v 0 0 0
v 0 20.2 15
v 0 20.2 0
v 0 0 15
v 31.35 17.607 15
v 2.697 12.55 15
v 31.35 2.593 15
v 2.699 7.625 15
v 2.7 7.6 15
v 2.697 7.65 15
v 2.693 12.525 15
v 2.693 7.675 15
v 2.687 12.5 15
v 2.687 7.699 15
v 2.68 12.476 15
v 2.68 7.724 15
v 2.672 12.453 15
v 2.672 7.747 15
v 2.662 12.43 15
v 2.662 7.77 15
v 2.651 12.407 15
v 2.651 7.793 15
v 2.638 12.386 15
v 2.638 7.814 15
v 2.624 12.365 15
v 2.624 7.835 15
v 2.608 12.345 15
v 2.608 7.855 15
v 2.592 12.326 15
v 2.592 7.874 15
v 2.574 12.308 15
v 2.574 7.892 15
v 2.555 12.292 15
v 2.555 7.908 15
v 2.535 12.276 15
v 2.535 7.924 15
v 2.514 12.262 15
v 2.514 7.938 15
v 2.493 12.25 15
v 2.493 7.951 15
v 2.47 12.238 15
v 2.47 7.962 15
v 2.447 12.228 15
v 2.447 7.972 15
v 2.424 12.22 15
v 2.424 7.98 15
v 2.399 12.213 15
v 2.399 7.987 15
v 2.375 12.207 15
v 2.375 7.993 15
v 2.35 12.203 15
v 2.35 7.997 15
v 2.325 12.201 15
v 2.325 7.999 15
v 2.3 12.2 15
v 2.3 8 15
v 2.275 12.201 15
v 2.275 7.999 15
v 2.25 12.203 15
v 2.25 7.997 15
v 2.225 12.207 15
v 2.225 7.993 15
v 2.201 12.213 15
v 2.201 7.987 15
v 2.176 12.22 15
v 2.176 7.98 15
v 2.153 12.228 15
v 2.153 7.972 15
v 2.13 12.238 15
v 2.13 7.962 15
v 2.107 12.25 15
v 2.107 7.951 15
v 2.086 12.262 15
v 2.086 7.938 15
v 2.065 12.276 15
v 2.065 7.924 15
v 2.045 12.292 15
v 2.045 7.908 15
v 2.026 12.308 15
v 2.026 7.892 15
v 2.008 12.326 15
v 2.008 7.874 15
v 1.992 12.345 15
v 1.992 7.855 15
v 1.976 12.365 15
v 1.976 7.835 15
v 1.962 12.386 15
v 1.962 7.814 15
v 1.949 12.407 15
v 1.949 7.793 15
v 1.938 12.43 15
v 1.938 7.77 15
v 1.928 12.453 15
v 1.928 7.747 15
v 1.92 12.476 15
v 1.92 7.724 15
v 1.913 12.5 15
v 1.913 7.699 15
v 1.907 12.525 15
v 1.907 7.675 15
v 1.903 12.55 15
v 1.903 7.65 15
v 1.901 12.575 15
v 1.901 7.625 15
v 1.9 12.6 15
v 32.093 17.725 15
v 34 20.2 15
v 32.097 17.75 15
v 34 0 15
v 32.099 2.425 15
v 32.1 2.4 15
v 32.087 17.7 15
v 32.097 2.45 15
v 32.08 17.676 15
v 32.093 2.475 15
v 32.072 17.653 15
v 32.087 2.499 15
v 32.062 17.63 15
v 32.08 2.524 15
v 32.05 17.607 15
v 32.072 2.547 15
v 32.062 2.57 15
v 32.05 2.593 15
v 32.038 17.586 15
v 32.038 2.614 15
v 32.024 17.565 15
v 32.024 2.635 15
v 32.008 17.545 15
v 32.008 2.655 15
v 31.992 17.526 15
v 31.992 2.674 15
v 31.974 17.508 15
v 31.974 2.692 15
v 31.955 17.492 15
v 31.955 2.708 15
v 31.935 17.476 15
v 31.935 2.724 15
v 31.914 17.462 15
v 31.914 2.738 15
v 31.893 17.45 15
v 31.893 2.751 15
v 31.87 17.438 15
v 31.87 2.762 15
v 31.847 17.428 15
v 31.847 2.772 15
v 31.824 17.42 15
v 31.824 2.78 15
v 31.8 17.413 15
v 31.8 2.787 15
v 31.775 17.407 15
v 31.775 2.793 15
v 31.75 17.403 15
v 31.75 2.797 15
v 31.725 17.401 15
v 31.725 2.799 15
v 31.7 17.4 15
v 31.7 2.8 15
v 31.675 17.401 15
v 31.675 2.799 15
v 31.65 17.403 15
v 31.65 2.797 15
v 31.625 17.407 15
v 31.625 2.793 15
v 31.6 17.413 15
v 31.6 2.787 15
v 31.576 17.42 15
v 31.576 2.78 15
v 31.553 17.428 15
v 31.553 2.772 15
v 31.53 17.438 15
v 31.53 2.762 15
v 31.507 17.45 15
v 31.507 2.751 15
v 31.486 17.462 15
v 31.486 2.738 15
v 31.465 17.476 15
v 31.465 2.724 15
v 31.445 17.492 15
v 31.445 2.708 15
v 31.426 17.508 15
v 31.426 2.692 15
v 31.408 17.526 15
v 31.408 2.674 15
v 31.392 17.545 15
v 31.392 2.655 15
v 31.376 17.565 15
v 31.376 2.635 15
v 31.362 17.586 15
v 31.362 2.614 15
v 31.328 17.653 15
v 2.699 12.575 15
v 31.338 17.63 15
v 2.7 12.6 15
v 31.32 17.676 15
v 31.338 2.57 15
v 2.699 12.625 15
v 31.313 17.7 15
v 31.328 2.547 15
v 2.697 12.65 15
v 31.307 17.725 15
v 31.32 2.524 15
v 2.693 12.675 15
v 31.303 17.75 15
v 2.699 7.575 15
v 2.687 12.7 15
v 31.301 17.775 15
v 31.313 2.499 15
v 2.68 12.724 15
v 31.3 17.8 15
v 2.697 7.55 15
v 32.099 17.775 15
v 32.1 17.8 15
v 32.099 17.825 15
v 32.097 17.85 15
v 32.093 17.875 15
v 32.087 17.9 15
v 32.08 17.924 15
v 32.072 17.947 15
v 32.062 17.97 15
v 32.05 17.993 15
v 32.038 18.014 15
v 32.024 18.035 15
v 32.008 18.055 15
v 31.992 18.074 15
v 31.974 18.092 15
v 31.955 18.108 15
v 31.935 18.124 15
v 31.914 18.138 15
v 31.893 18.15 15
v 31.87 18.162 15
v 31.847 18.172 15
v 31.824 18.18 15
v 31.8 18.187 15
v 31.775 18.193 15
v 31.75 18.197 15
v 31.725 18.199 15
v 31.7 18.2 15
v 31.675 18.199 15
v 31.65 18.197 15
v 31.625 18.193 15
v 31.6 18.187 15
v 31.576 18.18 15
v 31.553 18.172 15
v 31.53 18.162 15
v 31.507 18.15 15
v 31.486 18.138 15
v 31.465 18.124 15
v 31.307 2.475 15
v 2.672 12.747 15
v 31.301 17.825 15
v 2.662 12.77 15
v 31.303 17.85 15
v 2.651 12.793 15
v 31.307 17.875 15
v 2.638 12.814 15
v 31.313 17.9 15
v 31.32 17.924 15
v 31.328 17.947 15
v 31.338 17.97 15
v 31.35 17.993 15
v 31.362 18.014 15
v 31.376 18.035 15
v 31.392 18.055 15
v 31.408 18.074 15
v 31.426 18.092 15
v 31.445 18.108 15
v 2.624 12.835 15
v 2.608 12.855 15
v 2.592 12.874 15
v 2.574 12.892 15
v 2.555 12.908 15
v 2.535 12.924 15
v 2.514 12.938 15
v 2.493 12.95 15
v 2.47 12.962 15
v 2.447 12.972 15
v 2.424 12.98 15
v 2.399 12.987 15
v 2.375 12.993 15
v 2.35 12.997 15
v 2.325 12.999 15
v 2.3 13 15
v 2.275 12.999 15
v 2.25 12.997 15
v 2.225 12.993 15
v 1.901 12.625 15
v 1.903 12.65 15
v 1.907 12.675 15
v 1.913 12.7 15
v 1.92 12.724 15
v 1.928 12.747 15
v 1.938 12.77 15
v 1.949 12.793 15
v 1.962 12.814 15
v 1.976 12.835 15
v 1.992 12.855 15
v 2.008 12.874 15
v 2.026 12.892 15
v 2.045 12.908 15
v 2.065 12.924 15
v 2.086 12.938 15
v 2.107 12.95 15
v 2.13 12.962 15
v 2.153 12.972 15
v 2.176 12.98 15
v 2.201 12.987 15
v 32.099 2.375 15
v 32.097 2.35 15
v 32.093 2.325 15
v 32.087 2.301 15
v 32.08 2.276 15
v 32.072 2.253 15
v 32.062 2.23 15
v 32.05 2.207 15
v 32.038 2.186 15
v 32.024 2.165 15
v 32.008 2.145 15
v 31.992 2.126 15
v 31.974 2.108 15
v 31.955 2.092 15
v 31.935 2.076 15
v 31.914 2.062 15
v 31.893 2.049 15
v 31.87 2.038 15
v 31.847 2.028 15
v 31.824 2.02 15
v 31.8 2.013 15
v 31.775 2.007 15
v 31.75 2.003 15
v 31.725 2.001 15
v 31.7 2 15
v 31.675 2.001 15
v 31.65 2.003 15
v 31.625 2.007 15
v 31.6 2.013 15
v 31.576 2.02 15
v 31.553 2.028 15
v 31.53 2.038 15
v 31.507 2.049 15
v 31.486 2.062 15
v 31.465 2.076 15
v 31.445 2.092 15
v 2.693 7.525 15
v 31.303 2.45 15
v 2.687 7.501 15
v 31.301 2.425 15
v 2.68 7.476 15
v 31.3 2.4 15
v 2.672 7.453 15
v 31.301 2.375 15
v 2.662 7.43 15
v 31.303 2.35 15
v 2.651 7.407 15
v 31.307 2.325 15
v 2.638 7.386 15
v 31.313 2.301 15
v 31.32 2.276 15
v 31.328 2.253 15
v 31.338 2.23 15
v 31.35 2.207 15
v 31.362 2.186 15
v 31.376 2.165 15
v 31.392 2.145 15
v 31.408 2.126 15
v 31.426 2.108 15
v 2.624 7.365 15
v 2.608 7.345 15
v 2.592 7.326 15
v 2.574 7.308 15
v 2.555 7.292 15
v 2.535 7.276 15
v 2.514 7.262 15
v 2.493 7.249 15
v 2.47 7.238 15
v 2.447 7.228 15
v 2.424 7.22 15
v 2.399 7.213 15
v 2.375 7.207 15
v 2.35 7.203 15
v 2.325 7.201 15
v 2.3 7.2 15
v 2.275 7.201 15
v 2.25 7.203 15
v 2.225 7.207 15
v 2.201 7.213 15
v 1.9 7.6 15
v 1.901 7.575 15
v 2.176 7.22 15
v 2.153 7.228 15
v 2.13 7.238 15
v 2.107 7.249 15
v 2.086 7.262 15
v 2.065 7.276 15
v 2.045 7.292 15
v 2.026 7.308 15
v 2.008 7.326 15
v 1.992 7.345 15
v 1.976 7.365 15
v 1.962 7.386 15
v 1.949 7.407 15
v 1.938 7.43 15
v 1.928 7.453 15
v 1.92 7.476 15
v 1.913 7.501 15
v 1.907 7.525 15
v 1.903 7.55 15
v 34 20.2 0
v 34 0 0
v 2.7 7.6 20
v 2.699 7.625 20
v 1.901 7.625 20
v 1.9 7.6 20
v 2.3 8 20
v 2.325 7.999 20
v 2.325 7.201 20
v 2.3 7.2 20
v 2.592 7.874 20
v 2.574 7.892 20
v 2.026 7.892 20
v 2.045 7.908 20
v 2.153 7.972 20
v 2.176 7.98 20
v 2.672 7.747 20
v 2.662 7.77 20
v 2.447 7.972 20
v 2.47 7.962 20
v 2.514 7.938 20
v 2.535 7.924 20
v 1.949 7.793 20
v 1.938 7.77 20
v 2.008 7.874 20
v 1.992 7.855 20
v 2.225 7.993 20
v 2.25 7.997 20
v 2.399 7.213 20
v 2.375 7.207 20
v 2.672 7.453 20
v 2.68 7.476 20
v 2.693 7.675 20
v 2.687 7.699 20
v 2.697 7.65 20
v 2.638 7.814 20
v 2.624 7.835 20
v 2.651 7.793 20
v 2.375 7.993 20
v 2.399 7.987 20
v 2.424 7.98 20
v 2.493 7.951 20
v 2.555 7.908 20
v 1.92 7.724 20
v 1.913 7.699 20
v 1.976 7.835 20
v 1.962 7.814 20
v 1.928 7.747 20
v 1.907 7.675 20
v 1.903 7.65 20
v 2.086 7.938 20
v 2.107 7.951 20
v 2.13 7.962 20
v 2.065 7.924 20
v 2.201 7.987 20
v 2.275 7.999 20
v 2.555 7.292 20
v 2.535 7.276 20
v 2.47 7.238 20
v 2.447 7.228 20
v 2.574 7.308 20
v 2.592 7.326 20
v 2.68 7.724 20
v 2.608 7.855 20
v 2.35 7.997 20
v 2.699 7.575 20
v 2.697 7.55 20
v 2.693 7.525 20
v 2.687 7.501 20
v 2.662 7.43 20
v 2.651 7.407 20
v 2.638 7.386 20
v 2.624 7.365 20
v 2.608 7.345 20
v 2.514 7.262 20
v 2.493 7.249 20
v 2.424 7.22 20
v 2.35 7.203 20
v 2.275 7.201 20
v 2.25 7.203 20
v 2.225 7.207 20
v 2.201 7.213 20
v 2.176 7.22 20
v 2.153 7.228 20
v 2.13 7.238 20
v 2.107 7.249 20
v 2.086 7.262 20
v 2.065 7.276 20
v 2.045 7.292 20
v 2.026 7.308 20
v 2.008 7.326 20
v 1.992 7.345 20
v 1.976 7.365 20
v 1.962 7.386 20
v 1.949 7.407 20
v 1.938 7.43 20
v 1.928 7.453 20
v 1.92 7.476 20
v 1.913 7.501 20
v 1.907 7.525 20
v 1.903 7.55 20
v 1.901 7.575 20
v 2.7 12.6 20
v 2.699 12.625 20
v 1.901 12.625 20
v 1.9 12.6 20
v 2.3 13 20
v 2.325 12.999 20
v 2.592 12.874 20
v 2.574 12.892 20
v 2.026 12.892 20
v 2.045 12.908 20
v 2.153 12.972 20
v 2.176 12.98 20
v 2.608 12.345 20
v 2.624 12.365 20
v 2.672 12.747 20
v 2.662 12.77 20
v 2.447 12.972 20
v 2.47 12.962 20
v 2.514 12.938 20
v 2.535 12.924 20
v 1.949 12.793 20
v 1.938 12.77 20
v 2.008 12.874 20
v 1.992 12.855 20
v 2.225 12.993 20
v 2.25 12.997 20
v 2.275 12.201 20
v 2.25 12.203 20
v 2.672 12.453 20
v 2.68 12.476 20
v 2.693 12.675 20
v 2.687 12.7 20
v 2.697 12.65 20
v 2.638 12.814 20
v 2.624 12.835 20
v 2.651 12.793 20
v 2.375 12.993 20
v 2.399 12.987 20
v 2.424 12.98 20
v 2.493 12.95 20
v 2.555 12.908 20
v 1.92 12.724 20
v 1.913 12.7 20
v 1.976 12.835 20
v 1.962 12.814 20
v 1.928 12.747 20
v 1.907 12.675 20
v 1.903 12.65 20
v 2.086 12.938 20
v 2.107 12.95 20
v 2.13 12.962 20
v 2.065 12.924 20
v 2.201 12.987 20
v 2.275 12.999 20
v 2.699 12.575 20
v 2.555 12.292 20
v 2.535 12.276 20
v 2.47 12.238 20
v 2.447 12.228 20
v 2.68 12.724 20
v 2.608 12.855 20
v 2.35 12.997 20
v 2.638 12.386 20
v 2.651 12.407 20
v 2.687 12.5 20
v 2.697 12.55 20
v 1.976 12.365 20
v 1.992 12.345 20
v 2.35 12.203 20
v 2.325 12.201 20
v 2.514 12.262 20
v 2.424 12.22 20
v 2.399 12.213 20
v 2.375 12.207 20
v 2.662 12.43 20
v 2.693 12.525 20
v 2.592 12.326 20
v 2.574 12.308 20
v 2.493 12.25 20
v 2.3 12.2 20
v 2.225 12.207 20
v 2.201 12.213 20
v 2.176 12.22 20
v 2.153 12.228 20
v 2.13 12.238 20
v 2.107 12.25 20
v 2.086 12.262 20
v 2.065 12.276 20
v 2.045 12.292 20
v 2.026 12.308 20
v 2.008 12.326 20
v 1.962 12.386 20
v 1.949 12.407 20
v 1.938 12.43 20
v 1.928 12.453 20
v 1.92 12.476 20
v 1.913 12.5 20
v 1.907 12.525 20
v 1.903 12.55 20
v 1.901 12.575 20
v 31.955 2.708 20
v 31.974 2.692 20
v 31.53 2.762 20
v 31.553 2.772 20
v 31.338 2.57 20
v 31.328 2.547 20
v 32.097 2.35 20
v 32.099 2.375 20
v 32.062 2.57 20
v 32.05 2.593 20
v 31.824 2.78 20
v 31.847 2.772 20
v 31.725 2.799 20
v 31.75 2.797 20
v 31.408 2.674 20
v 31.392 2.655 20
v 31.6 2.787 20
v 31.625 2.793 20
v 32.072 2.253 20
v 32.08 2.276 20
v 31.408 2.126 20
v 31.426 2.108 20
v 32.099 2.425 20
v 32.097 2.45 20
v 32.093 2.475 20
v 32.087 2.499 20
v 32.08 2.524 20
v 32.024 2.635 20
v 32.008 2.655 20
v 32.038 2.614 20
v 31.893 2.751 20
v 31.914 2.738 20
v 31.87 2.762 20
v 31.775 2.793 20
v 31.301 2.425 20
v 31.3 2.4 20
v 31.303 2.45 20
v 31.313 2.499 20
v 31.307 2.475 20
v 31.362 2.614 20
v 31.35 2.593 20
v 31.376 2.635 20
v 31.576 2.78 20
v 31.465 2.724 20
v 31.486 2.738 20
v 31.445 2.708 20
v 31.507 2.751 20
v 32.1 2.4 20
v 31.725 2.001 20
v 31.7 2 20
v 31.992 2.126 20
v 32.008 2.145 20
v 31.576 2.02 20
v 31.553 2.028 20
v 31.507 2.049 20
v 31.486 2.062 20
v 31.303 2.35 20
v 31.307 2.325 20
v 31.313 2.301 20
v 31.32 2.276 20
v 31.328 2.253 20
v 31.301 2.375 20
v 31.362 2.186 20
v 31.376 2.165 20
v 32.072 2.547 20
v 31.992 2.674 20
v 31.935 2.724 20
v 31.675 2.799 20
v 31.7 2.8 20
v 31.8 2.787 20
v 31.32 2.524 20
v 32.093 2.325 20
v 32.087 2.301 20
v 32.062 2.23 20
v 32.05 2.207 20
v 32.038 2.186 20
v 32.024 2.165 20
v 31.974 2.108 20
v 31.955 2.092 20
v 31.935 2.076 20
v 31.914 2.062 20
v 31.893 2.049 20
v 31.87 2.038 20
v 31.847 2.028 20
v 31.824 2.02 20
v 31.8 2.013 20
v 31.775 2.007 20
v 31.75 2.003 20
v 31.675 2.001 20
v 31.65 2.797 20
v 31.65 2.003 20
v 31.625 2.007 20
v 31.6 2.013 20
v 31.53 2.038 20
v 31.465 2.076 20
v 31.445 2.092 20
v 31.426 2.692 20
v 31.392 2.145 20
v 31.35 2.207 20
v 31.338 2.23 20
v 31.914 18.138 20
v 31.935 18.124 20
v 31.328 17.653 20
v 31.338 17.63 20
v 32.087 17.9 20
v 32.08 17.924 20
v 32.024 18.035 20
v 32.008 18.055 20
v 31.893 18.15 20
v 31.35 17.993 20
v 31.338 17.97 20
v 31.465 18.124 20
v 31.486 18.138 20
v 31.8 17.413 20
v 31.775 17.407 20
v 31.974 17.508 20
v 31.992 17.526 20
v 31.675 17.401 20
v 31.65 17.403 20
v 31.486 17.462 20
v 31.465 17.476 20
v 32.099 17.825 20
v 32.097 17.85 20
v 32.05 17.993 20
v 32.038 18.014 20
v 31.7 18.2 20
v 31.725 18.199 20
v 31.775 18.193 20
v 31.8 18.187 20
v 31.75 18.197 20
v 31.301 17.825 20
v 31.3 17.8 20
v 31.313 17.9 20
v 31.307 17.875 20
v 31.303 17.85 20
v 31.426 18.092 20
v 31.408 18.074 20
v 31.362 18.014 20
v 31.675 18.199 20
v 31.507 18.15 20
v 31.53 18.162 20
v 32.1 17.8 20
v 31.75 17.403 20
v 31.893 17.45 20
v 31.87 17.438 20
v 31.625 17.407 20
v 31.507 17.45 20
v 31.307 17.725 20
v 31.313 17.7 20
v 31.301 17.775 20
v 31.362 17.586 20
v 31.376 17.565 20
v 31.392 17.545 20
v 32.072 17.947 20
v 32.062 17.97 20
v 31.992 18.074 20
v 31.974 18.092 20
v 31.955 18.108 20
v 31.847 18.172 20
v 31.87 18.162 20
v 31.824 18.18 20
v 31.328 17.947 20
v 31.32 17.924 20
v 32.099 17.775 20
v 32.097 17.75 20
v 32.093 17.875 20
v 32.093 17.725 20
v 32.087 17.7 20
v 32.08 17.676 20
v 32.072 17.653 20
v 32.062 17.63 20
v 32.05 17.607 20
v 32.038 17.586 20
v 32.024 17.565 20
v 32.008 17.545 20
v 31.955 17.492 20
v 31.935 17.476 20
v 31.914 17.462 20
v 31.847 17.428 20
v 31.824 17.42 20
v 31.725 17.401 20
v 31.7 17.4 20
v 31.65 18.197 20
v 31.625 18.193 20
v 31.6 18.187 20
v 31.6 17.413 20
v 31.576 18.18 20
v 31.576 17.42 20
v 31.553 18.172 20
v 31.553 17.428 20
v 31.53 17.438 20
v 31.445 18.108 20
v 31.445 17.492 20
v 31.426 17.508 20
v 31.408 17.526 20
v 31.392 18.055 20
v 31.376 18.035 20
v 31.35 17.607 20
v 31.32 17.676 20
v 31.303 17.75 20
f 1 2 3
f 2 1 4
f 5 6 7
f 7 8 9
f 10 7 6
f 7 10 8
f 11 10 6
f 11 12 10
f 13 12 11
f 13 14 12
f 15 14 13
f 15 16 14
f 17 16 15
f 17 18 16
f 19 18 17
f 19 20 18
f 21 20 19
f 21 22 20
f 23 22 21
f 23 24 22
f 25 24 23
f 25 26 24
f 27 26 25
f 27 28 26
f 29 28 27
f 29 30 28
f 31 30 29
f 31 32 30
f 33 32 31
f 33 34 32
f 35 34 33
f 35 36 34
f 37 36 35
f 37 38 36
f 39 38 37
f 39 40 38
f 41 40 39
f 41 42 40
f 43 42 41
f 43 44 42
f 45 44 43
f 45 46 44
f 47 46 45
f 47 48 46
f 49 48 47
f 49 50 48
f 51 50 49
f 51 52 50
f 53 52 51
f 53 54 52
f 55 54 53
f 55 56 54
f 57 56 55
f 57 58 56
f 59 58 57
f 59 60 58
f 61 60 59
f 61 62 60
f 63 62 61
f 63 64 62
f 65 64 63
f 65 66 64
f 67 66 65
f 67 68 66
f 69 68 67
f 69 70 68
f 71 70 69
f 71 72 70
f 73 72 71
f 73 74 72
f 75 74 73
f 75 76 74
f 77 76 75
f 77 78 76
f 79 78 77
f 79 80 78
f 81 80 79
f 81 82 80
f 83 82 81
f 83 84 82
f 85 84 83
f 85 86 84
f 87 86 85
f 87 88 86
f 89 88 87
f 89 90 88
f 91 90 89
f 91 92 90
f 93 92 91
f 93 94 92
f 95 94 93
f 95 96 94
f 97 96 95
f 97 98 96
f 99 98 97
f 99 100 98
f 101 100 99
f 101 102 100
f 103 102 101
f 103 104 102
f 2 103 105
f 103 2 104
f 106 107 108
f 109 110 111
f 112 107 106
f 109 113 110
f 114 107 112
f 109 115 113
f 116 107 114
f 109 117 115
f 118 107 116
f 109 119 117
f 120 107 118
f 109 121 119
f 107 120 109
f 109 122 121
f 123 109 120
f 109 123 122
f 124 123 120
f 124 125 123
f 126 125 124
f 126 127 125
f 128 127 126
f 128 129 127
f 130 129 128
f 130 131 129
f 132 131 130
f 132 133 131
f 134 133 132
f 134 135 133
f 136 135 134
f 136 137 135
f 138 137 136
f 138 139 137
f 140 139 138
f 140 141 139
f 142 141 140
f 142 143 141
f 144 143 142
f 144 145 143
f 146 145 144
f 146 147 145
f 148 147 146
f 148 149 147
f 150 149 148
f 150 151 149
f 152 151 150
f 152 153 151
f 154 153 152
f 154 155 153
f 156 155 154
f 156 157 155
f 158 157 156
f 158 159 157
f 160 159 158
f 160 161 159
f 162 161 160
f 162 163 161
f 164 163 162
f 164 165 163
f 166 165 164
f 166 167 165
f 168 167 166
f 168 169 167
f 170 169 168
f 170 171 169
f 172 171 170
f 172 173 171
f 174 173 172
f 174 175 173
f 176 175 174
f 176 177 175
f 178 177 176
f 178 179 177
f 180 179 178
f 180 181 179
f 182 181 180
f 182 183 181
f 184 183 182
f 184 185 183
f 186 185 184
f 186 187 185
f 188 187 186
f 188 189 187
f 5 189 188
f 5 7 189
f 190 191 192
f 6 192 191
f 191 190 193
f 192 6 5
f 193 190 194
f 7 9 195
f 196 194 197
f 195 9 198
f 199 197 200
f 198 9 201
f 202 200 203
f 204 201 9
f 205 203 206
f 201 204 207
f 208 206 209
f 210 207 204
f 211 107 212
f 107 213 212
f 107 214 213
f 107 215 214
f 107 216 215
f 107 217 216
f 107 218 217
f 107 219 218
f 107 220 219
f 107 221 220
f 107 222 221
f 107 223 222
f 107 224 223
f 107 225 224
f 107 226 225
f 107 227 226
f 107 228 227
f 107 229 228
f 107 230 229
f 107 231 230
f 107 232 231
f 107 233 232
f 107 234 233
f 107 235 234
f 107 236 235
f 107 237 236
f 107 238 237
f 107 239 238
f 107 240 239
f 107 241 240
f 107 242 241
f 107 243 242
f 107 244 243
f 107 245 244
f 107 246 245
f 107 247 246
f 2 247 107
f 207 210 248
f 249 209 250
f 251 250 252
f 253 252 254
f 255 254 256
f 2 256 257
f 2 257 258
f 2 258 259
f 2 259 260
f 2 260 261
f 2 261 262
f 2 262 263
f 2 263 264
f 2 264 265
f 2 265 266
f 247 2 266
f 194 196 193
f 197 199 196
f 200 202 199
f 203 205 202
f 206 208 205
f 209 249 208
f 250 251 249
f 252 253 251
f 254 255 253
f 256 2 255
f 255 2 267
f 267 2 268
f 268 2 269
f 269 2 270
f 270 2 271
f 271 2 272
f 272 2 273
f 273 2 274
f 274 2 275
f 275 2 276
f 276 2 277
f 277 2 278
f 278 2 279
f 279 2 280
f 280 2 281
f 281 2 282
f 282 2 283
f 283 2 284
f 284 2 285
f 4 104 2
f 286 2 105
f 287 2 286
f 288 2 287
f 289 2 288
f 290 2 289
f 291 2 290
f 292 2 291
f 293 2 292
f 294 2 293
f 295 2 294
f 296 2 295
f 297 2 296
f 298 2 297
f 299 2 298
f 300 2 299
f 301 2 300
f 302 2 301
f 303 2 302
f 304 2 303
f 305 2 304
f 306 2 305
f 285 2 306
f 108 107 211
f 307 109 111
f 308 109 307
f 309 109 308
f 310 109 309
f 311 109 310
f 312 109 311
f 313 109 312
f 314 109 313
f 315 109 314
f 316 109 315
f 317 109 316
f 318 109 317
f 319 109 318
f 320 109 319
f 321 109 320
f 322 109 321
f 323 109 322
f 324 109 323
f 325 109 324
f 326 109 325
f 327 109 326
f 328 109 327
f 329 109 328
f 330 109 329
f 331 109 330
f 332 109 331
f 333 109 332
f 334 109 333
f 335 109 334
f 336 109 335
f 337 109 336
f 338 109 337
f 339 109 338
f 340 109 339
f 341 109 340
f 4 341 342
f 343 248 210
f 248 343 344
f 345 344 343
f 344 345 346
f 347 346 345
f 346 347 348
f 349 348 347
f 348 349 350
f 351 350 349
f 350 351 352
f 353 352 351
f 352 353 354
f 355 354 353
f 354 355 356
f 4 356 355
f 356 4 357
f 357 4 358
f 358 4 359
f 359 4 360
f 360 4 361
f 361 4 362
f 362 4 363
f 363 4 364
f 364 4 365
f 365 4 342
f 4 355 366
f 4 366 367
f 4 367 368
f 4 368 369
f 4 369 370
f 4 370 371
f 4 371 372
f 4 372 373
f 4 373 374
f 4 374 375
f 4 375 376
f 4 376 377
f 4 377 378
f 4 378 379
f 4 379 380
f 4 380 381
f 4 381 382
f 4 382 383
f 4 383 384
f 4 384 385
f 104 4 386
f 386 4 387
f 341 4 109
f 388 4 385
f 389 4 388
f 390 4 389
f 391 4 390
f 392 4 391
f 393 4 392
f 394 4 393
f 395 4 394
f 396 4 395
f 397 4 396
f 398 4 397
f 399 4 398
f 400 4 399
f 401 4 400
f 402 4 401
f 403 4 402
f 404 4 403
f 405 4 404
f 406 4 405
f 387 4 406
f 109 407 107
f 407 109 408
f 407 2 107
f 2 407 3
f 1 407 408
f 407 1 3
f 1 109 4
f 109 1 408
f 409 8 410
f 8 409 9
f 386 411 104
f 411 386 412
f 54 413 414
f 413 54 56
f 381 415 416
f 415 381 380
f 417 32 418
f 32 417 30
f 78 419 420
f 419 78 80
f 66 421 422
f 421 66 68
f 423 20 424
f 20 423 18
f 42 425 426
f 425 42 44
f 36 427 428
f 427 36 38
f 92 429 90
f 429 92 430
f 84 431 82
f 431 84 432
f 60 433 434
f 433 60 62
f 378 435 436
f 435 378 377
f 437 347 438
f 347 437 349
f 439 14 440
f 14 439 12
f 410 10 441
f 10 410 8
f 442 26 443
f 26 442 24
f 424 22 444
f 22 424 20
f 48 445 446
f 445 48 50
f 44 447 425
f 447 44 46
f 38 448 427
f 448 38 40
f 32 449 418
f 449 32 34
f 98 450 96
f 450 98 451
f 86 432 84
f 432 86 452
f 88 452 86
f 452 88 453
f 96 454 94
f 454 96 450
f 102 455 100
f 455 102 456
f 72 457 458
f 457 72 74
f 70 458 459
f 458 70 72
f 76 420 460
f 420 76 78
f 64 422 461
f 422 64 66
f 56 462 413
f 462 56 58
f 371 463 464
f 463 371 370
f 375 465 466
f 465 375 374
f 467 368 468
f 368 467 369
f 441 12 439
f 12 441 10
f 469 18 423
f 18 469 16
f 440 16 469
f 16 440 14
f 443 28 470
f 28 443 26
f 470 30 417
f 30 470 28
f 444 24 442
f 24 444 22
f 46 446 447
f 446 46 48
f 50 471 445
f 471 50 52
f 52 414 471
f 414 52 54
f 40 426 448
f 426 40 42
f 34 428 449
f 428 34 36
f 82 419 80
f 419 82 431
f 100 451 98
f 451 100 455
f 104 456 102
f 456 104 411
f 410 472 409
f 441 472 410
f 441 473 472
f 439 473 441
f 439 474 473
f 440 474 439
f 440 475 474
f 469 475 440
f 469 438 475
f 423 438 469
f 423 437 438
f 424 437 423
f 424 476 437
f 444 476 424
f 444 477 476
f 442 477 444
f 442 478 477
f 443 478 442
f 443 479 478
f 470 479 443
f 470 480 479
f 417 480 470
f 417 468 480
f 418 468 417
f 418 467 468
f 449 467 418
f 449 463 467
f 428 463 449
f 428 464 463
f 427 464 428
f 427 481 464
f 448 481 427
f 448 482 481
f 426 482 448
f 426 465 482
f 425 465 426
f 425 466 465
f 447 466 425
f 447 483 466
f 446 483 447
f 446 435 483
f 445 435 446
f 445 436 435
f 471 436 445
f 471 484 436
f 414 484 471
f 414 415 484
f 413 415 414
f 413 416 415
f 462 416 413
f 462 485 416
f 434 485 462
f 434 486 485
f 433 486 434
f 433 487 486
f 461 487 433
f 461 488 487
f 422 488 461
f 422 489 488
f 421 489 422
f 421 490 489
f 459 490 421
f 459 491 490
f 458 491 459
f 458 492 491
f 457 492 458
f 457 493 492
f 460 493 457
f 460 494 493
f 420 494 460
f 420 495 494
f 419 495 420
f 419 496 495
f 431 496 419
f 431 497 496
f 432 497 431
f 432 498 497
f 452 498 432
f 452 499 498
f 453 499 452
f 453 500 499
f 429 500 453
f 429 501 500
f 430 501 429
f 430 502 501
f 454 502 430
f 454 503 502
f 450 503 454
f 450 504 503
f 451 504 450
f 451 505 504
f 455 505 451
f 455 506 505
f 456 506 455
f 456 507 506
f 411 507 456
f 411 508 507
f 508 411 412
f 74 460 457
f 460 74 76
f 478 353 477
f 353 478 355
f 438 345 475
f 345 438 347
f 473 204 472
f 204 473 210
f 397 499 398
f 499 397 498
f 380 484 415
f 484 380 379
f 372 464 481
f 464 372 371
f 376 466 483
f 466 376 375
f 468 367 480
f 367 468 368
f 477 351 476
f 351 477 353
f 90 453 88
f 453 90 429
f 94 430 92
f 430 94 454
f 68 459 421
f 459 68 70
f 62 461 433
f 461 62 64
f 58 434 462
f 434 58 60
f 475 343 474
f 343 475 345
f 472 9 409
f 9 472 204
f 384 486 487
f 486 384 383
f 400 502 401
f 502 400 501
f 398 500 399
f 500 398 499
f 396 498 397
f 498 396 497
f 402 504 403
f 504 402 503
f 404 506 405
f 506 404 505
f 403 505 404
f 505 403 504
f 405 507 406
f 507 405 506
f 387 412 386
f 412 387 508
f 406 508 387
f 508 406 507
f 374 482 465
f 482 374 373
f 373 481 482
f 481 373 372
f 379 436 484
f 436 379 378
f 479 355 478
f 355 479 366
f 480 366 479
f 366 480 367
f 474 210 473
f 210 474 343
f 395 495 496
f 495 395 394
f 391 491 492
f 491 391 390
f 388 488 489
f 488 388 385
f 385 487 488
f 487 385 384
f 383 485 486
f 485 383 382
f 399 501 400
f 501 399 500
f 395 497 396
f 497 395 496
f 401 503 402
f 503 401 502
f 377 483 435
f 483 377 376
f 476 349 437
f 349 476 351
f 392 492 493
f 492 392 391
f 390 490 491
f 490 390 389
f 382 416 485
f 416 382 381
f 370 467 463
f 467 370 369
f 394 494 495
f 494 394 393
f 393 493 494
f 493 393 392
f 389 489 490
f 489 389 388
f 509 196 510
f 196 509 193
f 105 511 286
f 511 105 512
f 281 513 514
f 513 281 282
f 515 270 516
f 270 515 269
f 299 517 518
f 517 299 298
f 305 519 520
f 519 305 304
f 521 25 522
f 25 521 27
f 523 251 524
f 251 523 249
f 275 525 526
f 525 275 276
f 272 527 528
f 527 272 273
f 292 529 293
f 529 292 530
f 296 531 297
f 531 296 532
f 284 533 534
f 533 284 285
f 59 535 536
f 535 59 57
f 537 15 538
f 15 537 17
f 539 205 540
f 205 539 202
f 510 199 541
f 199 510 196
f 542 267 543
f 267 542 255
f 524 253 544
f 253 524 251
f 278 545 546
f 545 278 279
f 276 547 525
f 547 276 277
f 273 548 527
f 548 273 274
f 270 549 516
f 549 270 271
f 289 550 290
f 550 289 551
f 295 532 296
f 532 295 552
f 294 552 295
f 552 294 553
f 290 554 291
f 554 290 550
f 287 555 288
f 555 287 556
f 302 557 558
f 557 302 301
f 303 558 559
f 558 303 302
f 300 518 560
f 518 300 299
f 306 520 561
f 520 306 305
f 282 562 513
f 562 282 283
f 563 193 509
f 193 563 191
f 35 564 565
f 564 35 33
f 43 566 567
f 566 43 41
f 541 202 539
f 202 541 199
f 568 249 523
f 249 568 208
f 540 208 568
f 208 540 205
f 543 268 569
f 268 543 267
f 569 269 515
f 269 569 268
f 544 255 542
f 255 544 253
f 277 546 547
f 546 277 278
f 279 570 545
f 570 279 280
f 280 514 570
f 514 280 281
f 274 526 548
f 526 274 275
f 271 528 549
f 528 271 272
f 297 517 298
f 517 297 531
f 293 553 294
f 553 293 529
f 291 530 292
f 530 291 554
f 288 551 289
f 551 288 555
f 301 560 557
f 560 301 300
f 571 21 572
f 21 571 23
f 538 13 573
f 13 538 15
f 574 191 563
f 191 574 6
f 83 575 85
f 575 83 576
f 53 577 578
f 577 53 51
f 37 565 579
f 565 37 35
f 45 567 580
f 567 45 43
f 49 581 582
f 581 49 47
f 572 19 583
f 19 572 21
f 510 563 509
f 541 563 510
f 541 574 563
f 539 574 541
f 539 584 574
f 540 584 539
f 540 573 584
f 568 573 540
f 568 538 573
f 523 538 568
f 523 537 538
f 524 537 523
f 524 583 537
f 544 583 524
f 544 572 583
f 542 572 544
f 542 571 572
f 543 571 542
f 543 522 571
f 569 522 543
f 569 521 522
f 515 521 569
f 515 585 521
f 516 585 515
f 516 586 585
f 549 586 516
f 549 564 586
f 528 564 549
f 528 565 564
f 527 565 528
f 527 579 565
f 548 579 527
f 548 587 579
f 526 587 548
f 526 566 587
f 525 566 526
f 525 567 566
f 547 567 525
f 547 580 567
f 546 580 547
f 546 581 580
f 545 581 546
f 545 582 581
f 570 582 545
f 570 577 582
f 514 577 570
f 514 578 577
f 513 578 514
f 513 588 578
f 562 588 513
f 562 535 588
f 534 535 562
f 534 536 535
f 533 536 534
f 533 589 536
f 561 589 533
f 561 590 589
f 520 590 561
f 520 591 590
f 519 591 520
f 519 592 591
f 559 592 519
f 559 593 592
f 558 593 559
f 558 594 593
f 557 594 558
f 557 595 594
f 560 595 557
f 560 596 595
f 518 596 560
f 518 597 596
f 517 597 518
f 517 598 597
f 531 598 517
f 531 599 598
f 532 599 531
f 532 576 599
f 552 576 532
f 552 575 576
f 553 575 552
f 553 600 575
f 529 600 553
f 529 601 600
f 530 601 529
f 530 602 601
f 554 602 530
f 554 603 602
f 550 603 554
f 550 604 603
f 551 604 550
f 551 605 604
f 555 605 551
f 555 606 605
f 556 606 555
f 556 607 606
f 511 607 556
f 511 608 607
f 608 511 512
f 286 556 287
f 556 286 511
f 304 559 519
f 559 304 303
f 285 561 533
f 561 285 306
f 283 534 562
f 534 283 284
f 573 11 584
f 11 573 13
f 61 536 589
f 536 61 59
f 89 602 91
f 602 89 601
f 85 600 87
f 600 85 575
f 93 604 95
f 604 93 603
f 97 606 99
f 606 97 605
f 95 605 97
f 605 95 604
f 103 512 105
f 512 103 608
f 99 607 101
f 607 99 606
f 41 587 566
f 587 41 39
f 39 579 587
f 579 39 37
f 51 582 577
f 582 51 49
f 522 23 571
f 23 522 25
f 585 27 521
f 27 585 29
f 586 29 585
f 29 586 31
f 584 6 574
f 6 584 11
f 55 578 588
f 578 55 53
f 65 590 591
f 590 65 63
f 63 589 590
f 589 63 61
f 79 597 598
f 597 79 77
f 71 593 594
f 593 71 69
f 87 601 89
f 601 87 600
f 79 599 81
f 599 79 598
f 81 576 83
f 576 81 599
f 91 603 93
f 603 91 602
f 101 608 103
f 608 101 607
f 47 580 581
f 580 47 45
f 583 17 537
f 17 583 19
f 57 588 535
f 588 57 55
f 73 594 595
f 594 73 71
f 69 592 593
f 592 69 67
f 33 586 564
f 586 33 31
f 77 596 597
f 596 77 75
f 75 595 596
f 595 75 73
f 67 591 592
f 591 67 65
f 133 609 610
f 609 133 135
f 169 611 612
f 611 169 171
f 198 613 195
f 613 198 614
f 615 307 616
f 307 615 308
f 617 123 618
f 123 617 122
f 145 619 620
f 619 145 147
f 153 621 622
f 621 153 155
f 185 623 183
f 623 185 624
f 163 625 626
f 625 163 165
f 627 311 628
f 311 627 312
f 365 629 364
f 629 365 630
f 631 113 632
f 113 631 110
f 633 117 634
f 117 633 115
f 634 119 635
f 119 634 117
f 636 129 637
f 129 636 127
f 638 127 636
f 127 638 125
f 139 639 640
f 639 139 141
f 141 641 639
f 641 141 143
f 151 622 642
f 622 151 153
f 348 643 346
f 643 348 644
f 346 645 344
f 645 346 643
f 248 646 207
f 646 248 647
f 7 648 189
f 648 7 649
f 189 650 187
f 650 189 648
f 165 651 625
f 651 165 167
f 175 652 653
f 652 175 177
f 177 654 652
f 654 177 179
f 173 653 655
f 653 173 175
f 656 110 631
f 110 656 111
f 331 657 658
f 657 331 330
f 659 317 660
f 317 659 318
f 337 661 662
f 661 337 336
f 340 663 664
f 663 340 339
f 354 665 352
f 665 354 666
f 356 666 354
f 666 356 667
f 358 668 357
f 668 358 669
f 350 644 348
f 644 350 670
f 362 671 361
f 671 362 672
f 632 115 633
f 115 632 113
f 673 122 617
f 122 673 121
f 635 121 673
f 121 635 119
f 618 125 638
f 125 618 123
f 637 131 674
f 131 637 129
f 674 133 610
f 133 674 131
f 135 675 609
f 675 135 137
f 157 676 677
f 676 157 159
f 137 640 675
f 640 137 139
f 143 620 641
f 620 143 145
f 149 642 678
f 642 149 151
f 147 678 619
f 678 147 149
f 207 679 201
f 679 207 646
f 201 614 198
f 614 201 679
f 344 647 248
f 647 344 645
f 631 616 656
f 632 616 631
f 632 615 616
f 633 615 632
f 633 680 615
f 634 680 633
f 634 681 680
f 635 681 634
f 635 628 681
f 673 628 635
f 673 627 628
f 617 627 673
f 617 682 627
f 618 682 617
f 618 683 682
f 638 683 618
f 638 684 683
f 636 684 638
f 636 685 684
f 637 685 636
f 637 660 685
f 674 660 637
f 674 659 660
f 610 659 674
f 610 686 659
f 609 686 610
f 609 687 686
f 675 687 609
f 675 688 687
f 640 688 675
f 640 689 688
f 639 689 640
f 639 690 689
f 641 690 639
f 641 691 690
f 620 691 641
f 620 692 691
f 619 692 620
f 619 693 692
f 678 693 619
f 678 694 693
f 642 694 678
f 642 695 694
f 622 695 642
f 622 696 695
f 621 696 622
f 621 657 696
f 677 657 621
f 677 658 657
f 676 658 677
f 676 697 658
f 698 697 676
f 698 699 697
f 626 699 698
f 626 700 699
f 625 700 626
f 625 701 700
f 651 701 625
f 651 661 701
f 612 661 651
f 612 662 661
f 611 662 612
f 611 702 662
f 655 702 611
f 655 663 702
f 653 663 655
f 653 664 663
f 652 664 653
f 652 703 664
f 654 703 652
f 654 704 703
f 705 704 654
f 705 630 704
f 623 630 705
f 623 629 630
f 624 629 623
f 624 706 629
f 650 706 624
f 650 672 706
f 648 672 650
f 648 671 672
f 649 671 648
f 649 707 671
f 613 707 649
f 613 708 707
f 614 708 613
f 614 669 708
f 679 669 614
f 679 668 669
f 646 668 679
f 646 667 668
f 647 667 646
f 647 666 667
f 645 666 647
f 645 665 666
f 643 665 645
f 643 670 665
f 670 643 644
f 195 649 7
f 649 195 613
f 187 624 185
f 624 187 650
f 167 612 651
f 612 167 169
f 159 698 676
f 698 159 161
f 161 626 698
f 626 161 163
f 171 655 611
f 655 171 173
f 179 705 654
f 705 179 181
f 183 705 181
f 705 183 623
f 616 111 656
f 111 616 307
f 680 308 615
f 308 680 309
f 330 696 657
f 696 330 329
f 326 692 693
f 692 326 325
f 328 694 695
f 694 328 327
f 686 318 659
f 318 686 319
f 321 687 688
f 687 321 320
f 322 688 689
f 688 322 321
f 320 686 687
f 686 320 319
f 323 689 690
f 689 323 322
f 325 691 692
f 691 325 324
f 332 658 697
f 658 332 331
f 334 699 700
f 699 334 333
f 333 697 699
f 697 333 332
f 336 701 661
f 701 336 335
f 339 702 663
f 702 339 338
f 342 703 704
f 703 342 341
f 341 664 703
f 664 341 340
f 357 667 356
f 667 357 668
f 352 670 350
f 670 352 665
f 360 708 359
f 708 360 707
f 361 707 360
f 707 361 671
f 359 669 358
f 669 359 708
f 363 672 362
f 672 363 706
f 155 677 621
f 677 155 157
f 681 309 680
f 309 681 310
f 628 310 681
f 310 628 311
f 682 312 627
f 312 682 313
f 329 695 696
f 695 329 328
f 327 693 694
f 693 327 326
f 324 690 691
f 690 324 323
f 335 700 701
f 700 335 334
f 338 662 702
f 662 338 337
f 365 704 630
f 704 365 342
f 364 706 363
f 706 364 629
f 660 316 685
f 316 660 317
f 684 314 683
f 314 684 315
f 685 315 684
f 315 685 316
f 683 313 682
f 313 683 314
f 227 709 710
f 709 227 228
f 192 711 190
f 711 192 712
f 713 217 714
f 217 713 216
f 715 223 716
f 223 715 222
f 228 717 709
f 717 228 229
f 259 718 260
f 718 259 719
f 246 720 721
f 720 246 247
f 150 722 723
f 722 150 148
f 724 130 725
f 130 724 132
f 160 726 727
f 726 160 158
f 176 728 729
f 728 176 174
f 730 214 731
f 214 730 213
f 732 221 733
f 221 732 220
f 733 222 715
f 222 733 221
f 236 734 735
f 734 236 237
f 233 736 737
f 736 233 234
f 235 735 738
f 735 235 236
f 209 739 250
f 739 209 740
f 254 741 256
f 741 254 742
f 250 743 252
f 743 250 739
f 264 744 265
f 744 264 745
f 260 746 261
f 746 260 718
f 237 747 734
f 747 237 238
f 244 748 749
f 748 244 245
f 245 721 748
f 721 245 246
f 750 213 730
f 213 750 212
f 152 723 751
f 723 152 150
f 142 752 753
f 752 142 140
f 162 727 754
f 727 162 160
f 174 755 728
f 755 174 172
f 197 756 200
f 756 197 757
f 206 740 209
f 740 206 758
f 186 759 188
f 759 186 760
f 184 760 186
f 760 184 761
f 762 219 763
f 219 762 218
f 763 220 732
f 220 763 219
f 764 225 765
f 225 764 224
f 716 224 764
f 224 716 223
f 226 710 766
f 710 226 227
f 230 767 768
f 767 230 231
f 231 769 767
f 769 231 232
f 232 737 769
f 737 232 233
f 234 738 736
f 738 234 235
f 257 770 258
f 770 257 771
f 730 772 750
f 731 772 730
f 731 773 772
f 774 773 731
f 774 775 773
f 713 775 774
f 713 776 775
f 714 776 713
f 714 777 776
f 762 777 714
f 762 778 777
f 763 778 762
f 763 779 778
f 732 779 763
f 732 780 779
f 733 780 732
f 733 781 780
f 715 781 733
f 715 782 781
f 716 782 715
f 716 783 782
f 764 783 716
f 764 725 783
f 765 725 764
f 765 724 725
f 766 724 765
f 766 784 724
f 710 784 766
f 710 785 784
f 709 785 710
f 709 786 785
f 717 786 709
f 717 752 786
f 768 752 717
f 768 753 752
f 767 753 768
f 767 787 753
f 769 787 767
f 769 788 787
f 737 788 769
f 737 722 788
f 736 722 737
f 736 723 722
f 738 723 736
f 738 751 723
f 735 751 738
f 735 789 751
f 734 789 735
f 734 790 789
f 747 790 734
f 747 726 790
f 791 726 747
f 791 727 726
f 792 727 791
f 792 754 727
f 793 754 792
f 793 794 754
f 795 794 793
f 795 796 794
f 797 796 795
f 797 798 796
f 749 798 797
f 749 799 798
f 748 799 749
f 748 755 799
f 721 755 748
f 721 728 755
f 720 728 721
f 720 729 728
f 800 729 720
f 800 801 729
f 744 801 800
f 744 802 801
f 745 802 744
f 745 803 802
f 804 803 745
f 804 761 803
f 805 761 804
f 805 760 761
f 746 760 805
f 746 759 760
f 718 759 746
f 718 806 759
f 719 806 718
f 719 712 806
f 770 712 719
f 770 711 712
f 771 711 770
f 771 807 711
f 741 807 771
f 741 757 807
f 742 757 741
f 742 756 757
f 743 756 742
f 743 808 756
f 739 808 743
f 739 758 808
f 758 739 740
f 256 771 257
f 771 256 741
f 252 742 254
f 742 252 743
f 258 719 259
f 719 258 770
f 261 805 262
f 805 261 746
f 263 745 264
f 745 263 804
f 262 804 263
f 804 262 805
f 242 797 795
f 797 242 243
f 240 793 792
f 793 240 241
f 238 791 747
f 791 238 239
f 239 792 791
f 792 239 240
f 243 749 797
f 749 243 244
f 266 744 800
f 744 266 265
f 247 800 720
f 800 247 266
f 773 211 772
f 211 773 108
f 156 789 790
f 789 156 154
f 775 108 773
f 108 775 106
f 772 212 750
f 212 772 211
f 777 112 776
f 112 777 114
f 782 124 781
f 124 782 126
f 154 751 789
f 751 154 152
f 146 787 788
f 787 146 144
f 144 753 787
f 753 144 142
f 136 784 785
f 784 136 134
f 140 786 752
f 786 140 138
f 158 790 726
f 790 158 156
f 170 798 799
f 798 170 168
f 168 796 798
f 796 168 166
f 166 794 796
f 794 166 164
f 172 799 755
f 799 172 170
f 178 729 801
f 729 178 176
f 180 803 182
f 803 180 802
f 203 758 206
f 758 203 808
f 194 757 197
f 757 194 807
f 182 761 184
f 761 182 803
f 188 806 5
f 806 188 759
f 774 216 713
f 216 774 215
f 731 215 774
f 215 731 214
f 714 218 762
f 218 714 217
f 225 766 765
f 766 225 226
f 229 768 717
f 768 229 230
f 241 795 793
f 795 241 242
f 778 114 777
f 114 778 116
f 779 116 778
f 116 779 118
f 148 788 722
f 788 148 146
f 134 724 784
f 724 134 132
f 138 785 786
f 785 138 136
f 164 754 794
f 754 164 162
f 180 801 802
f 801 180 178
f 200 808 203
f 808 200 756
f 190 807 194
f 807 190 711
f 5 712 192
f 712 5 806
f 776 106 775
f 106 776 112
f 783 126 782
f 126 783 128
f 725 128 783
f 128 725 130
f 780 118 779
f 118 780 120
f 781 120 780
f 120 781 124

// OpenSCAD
$fn=100;
color("black"){
    l=34;
    w=20.2;
    h=15;
    cube([l,w,h]);
    
    translate([l/2-29.4/2, w/2-5/2, 0])  cylinder(d=0.8,h=h+5);
    translate([l/2-29.4/2, w/2+5/2, 0])  cylinder(d=0.8,h=h+5);
    translate([l/2+29.4/2, w/2-15.4/2, 0])  cylinder(d=0.8,h=h+5);
    translate([l/2+29.4/2, w/2+15.4/2, 0])  cylinder(d=0.8,h=h+5);
    
}
